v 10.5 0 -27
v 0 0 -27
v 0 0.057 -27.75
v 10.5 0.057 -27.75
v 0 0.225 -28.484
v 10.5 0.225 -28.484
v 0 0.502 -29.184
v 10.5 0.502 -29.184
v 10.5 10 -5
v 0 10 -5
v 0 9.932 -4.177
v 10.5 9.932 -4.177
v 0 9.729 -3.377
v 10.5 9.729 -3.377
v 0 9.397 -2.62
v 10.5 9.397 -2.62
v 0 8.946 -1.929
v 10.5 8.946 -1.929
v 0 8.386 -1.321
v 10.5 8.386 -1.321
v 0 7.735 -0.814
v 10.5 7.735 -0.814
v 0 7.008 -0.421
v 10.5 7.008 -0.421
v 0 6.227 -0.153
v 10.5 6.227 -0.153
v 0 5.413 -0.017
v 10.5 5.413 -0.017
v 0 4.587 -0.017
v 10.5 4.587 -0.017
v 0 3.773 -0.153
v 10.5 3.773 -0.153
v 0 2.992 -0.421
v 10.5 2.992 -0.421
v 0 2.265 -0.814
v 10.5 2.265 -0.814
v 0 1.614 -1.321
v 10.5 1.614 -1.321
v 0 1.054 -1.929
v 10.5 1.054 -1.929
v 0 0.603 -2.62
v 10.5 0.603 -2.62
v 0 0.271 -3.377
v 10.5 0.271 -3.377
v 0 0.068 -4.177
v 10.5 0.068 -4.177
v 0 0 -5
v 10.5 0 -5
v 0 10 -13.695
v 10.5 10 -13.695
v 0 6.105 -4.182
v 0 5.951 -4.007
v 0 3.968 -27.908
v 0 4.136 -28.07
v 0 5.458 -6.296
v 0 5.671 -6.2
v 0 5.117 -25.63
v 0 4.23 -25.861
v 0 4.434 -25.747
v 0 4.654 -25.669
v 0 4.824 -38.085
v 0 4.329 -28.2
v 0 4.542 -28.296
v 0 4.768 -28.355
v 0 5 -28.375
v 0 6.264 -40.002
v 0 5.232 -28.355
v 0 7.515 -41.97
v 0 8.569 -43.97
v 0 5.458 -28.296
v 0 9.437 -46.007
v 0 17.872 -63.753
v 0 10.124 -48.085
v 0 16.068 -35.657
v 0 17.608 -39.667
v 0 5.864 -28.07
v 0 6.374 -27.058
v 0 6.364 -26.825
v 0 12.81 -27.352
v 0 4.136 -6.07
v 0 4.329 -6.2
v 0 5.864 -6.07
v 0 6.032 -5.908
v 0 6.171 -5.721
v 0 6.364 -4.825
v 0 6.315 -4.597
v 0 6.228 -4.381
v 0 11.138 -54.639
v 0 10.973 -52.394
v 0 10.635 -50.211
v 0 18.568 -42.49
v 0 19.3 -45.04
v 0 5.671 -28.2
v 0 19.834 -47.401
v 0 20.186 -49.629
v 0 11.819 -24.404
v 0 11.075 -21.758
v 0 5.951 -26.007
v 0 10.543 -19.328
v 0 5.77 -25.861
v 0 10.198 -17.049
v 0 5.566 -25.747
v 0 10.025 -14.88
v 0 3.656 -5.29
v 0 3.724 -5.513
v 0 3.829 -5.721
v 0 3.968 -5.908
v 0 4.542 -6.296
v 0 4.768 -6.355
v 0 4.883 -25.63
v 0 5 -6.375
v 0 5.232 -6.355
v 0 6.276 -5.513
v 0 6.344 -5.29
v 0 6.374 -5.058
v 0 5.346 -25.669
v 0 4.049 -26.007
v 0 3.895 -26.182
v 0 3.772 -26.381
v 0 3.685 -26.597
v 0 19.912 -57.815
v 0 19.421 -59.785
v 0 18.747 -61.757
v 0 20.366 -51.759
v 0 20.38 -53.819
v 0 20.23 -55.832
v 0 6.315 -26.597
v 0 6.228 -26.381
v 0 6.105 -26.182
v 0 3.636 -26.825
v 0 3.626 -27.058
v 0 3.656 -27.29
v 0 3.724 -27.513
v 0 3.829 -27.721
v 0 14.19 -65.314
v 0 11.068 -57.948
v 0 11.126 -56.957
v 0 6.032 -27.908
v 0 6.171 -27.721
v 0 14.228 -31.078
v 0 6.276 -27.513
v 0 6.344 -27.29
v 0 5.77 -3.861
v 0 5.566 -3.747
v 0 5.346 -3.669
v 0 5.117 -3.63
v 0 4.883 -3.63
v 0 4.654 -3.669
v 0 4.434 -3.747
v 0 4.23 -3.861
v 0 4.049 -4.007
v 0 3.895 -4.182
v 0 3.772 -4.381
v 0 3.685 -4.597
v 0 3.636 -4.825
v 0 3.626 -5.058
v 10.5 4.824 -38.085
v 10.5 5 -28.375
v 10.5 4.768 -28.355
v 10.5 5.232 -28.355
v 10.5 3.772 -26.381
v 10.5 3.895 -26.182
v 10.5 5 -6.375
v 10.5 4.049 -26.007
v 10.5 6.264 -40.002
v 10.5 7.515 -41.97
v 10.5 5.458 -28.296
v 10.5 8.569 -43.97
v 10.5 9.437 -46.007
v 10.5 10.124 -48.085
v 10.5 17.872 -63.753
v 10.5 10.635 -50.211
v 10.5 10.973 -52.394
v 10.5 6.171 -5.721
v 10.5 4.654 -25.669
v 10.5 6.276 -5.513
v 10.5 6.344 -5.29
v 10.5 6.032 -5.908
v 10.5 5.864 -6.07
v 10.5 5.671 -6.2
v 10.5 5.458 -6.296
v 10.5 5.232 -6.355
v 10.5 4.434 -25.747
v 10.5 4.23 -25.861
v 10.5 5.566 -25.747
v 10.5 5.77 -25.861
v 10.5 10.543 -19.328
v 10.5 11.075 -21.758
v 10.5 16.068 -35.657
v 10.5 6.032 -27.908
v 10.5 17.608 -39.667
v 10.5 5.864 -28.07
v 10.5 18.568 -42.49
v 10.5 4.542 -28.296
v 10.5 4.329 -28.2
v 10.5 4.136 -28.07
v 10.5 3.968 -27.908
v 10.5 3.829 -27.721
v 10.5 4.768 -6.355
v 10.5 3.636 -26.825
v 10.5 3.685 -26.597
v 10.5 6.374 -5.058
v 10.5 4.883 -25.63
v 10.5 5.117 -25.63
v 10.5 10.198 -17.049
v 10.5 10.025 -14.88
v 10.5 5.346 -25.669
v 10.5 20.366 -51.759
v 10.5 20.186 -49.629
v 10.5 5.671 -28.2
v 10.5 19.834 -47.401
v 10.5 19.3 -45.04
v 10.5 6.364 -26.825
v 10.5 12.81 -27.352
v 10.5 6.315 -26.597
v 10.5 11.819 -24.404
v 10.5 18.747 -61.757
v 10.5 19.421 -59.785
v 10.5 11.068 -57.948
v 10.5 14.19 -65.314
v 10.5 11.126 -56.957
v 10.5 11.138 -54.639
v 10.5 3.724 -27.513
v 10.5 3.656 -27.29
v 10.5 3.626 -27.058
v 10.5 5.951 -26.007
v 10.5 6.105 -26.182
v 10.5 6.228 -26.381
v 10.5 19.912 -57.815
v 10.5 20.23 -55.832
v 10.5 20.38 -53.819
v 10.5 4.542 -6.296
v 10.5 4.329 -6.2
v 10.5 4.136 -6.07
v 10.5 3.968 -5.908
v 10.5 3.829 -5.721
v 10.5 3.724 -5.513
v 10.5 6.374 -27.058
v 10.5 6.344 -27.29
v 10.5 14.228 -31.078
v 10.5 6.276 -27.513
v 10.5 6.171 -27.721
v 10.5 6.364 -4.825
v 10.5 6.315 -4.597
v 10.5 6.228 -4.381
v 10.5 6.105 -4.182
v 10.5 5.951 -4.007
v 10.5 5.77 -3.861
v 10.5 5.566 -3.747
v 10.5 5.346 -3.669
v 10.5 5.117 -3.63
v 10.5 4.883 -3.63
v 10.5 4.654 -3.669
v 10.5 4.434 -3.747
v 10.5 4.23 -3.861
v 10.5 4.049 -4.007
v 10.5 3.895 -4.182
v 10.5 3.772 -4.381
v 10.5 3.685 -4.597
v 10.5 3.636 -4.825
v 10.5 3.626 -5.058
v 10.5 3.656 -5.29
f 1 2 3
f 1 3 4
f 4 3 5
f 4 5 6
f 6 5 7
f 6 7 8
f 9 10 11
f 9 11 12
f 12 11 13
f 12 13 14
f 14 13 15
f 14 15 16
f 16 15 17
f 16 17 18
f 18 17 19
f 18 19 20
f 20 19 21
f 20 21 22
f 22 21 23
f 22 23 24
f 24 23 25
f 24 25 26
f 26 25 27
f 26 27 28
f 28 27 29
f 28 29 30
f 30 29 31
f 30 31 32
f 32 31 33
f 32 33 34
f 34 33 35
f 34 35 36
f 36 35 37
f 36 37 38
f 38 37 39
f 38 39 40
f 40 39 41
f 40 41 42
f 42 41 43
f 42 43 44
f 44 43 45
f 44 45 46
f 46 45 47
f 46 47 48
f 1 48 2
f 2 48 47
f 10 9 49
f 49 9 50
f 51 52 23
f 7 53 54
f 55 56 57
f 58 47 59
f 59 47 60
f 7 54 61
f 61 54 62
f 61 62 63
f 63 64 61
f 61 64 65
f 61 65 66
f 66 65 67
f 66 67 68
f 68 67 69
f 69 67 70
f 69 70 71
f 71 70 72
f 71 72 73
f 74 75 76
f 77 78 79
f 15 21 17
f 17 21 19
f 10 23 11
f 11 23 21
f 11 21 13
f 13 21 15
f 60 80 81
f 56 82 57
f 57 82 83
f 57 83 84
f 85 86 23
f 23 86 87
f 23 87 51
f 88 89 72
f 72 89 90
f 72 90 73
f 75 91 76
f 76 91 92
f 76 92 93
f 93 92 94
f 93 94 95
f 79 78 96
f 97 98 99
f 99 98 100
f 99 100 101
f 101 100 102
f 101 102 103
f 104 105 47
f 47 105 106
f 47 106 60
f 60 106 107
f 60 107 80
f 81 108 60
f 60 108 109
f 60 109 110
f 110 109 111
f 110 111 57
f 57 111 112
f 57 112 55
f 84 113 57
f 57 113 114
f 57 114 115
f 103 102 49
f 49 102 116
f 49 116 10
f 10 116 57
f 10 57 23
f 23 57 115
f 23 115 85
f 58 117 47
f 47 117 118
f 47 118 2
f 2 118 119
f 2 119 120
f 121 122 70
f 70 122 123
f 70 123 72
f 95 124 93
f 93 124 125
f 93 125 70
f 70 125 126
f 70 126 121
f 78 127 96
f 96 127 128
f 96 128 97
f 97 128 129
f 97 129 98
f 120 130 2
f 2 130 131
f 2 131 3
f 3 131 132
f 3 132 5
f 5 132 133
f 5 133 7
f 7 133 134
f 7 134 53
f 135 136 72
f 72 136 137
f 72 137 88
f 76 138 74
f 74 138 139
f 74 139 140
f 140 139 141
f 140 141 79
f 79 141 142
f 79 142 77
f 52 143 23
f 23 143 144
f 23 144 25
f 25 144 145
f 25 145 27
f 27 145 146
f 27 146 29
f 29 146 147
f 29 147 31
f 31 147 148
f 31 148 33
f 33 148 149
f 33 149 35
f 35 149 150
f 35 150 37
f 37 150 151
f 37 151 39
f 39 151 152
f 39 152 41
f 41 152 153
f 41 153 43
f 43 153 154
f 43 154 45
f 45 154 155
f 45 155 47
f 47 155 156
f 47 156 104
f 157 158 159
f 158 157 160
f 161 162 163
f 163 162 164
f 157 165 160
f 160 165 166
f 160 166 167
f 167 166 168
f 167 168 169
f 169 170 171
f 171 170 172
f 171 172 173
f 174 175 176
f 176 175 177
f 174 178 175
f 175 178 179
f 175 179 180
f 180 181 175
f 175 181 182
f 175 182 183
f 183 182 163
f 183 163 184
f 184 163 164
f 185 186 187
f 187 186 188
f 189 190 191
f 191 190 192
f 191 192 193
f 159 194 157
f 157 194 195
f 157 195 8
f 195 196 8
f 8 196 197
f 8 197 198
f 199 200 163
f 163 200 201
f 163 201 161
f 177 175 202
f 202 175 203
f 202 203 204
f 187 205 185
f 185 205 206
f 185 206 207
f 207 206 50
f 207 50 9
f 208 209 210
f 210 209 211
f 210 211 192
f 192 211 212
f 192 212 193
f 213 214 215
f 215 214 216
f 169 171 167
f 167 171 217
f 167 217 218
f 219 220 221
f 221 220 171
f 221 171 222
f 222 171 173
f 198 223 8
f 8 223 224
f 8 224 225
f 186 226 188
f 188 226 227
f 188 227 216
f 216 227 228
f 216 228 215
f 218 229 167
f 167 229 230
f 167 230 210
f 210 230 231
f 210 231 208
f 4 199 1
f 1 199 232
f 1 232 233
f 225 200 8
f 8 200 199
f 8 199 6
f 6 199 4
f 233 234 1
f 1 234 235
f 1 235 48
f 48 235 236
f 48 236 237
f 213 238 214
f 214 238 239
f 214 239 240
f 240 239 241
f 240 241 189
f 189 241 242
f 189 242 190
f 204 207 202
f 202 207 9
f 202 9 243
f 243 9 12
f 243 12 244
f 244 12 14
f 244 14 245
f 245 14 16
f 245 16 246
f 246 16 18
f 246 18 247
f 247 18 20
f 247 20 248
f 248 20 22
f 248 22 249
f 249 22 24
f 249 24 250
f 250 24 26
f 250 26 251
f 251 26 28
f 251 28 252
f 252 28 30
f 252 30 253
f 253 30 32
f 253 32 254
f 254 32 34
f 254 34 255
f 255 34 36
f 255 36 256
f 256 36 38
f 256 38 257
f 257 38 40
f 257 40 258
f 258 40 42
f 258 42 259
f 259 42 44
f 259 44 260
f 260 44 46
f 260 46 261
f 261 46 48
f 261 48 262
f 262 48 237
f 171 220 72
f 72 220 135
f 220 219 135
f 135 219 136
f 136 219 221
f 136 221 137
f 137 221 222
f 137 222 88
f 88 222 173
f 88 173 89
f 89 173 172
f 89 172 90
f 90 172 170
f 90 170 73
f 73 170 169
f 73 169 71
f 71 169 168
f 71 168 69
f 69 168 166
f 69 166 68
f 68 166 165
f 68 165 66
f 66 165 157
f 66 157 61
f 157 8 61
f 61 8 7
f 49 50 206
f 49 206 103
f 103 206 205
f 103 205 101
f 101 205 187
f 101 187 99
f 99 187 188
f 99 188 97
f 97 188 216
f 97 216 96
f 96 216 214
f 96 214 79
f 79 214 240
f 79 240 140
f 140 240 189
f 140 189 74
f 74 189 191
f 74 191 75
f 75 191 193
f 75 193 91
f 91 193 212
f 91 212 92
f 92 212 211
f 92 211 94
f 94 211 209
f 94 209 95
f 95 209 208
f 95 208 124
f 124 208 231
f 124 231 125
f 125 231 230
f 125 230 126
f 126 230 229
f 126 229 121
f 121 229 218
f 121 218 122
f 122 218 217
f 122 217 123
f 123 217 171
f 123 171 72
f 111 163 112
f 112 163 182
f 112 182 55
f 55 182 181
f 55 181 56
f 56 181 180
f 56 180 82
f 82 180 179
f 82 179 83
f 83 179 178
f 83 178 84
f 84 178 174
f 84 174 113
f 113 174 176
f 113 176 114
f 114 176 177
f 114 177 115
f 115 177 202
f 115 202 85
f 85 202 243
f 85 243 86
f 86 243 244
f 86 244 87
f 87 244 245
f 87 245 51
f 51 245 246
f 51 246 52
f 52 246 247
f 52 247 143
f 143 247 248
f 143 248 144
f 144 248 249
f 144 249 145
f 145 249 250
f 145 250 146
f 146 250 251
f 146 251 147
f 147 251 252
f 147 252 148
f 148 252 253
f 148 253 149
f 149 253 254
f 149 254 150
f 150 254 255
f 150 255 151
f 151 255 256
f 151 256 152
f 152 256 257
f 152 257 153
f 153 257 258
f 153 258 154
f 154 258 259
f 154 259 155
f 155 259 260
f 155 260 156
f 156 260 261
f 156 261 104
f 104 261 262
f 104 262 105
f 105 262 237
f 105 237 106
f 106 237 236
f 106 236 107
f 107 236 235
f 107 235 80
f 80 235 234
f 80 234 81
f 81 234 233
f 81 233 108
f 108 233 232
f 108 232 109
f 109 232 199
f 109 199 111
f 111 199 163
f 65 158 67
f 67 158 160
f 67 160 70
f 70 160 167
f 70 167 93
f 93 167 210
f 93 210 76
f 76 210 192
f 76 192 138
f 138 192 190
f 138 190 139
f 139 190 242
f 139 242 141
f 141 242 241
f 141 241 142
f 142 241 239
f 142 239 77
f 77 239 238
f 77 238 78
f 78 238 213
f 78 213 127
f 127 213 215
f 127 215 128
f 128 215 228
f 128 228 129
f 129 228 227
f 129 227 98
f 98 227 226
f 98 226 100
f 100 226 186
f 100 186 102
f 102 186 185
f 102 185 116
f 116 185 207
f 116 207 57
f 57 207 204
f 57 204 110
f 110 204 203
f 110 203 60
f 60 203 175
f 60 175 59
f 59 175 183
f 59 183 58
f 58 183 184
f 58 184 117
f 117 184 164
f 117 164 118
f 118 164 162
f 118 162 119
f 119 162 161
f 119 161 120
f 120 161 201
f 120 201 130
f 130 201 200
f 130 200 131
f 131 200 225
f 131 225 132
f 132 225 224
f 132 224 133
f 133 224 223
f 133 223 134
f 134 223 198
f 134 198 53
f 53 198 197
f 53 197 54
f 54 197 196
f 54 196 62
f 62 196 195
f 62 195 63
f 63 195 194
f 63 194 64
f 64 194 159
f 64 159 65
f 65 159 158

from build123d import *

# Parameters (mm, degrees)
BOSS_EXTRUDE1_DEPTH = 10.5
BOSS_EXTRUDE2_START = -10.5
BOSS_EXTRUDE2_DEPTH = 10.5
SKETCH3_R           = 1.375
CUT_EXTRUDE1_DEPTH  = 70.224771272


with BuildPart() as part:
    # Sketch1 → Boss-Extrude1 (new body)
    with BuildSketch(Plane(origin=(0, 0, 0), x_dir=(0, 0, -1), z_dir=(1, 0, 0))):
        with BuildLine():
            Line((27, 10), (5, 10))
            ThreePointArc((5, 10), (0, 5), (5, 0))
            Line((5, 0), (27, 0))
            ThreePointArc((27, 0), (32, 5), (27, 10))
        make_face()
    extrude(amount=BOSS_EXTRUDE1_DEPTH)

    # Sketch2 → Boss-Extrude2 (add)
    with BuildSketch(Plane(origin=(10.5, 0, 0), x_dir=(0, 0, -1), z_dir=(1, 0, 0)).offset(BOSS_EXTRUDE2_START)):
        with BuildLine():
            add(Edge.make_bspline(
                [(63.752972286, 17.872423117), (45.928882678, 26.563787963), (31.059268621, 10), (13.694974759, 10)],
                knots=[0, 0, 0, 0, 1, 1, 1, 1], degree=3))
            Line((13.694974759, 10), (27, 10))
            ThreePointArc((27, 10), (31.87285141, 6.120410255), (29.183837075, 0.502127655))
            Line((29.183837075, 0.502127655), (38.08542066, 4.824084077))
            add(Edge.make_bspline(
                [(38.08542066, 4.824084077), (46.797509509, 11.895222457), (57.948000409, 11.067843667)],
                knots=[0, 0, 0, 1, 1, 1], degree=2))
            Line((57.948000409, 11.067843667), (65.313809691, 14.189518476))
            Line((65.313809691, 14.189518476), (63.752972286, 17.872423117))
        make_face()
    extrude(amount=BOSS_EXTRUDE2_DEPTH)

    # Sketch3 → Cut-Extrude1 (cut, through all)
    with BuildSketch(Plane(origin=(10.5, 0, 0), x_dir=(0, 0, -1), z_dir=(1, 0, 0))):
        with Locations((5, 5)):
            Circle(SKETCH3_R)
        with Locations((27, 5)):
            Circle(SKETCH3_R)
    extrude(amount=-CUT_EXTRUDE1_DEPTH, mode=Mode.SUBTRACT)


solid = part.part
